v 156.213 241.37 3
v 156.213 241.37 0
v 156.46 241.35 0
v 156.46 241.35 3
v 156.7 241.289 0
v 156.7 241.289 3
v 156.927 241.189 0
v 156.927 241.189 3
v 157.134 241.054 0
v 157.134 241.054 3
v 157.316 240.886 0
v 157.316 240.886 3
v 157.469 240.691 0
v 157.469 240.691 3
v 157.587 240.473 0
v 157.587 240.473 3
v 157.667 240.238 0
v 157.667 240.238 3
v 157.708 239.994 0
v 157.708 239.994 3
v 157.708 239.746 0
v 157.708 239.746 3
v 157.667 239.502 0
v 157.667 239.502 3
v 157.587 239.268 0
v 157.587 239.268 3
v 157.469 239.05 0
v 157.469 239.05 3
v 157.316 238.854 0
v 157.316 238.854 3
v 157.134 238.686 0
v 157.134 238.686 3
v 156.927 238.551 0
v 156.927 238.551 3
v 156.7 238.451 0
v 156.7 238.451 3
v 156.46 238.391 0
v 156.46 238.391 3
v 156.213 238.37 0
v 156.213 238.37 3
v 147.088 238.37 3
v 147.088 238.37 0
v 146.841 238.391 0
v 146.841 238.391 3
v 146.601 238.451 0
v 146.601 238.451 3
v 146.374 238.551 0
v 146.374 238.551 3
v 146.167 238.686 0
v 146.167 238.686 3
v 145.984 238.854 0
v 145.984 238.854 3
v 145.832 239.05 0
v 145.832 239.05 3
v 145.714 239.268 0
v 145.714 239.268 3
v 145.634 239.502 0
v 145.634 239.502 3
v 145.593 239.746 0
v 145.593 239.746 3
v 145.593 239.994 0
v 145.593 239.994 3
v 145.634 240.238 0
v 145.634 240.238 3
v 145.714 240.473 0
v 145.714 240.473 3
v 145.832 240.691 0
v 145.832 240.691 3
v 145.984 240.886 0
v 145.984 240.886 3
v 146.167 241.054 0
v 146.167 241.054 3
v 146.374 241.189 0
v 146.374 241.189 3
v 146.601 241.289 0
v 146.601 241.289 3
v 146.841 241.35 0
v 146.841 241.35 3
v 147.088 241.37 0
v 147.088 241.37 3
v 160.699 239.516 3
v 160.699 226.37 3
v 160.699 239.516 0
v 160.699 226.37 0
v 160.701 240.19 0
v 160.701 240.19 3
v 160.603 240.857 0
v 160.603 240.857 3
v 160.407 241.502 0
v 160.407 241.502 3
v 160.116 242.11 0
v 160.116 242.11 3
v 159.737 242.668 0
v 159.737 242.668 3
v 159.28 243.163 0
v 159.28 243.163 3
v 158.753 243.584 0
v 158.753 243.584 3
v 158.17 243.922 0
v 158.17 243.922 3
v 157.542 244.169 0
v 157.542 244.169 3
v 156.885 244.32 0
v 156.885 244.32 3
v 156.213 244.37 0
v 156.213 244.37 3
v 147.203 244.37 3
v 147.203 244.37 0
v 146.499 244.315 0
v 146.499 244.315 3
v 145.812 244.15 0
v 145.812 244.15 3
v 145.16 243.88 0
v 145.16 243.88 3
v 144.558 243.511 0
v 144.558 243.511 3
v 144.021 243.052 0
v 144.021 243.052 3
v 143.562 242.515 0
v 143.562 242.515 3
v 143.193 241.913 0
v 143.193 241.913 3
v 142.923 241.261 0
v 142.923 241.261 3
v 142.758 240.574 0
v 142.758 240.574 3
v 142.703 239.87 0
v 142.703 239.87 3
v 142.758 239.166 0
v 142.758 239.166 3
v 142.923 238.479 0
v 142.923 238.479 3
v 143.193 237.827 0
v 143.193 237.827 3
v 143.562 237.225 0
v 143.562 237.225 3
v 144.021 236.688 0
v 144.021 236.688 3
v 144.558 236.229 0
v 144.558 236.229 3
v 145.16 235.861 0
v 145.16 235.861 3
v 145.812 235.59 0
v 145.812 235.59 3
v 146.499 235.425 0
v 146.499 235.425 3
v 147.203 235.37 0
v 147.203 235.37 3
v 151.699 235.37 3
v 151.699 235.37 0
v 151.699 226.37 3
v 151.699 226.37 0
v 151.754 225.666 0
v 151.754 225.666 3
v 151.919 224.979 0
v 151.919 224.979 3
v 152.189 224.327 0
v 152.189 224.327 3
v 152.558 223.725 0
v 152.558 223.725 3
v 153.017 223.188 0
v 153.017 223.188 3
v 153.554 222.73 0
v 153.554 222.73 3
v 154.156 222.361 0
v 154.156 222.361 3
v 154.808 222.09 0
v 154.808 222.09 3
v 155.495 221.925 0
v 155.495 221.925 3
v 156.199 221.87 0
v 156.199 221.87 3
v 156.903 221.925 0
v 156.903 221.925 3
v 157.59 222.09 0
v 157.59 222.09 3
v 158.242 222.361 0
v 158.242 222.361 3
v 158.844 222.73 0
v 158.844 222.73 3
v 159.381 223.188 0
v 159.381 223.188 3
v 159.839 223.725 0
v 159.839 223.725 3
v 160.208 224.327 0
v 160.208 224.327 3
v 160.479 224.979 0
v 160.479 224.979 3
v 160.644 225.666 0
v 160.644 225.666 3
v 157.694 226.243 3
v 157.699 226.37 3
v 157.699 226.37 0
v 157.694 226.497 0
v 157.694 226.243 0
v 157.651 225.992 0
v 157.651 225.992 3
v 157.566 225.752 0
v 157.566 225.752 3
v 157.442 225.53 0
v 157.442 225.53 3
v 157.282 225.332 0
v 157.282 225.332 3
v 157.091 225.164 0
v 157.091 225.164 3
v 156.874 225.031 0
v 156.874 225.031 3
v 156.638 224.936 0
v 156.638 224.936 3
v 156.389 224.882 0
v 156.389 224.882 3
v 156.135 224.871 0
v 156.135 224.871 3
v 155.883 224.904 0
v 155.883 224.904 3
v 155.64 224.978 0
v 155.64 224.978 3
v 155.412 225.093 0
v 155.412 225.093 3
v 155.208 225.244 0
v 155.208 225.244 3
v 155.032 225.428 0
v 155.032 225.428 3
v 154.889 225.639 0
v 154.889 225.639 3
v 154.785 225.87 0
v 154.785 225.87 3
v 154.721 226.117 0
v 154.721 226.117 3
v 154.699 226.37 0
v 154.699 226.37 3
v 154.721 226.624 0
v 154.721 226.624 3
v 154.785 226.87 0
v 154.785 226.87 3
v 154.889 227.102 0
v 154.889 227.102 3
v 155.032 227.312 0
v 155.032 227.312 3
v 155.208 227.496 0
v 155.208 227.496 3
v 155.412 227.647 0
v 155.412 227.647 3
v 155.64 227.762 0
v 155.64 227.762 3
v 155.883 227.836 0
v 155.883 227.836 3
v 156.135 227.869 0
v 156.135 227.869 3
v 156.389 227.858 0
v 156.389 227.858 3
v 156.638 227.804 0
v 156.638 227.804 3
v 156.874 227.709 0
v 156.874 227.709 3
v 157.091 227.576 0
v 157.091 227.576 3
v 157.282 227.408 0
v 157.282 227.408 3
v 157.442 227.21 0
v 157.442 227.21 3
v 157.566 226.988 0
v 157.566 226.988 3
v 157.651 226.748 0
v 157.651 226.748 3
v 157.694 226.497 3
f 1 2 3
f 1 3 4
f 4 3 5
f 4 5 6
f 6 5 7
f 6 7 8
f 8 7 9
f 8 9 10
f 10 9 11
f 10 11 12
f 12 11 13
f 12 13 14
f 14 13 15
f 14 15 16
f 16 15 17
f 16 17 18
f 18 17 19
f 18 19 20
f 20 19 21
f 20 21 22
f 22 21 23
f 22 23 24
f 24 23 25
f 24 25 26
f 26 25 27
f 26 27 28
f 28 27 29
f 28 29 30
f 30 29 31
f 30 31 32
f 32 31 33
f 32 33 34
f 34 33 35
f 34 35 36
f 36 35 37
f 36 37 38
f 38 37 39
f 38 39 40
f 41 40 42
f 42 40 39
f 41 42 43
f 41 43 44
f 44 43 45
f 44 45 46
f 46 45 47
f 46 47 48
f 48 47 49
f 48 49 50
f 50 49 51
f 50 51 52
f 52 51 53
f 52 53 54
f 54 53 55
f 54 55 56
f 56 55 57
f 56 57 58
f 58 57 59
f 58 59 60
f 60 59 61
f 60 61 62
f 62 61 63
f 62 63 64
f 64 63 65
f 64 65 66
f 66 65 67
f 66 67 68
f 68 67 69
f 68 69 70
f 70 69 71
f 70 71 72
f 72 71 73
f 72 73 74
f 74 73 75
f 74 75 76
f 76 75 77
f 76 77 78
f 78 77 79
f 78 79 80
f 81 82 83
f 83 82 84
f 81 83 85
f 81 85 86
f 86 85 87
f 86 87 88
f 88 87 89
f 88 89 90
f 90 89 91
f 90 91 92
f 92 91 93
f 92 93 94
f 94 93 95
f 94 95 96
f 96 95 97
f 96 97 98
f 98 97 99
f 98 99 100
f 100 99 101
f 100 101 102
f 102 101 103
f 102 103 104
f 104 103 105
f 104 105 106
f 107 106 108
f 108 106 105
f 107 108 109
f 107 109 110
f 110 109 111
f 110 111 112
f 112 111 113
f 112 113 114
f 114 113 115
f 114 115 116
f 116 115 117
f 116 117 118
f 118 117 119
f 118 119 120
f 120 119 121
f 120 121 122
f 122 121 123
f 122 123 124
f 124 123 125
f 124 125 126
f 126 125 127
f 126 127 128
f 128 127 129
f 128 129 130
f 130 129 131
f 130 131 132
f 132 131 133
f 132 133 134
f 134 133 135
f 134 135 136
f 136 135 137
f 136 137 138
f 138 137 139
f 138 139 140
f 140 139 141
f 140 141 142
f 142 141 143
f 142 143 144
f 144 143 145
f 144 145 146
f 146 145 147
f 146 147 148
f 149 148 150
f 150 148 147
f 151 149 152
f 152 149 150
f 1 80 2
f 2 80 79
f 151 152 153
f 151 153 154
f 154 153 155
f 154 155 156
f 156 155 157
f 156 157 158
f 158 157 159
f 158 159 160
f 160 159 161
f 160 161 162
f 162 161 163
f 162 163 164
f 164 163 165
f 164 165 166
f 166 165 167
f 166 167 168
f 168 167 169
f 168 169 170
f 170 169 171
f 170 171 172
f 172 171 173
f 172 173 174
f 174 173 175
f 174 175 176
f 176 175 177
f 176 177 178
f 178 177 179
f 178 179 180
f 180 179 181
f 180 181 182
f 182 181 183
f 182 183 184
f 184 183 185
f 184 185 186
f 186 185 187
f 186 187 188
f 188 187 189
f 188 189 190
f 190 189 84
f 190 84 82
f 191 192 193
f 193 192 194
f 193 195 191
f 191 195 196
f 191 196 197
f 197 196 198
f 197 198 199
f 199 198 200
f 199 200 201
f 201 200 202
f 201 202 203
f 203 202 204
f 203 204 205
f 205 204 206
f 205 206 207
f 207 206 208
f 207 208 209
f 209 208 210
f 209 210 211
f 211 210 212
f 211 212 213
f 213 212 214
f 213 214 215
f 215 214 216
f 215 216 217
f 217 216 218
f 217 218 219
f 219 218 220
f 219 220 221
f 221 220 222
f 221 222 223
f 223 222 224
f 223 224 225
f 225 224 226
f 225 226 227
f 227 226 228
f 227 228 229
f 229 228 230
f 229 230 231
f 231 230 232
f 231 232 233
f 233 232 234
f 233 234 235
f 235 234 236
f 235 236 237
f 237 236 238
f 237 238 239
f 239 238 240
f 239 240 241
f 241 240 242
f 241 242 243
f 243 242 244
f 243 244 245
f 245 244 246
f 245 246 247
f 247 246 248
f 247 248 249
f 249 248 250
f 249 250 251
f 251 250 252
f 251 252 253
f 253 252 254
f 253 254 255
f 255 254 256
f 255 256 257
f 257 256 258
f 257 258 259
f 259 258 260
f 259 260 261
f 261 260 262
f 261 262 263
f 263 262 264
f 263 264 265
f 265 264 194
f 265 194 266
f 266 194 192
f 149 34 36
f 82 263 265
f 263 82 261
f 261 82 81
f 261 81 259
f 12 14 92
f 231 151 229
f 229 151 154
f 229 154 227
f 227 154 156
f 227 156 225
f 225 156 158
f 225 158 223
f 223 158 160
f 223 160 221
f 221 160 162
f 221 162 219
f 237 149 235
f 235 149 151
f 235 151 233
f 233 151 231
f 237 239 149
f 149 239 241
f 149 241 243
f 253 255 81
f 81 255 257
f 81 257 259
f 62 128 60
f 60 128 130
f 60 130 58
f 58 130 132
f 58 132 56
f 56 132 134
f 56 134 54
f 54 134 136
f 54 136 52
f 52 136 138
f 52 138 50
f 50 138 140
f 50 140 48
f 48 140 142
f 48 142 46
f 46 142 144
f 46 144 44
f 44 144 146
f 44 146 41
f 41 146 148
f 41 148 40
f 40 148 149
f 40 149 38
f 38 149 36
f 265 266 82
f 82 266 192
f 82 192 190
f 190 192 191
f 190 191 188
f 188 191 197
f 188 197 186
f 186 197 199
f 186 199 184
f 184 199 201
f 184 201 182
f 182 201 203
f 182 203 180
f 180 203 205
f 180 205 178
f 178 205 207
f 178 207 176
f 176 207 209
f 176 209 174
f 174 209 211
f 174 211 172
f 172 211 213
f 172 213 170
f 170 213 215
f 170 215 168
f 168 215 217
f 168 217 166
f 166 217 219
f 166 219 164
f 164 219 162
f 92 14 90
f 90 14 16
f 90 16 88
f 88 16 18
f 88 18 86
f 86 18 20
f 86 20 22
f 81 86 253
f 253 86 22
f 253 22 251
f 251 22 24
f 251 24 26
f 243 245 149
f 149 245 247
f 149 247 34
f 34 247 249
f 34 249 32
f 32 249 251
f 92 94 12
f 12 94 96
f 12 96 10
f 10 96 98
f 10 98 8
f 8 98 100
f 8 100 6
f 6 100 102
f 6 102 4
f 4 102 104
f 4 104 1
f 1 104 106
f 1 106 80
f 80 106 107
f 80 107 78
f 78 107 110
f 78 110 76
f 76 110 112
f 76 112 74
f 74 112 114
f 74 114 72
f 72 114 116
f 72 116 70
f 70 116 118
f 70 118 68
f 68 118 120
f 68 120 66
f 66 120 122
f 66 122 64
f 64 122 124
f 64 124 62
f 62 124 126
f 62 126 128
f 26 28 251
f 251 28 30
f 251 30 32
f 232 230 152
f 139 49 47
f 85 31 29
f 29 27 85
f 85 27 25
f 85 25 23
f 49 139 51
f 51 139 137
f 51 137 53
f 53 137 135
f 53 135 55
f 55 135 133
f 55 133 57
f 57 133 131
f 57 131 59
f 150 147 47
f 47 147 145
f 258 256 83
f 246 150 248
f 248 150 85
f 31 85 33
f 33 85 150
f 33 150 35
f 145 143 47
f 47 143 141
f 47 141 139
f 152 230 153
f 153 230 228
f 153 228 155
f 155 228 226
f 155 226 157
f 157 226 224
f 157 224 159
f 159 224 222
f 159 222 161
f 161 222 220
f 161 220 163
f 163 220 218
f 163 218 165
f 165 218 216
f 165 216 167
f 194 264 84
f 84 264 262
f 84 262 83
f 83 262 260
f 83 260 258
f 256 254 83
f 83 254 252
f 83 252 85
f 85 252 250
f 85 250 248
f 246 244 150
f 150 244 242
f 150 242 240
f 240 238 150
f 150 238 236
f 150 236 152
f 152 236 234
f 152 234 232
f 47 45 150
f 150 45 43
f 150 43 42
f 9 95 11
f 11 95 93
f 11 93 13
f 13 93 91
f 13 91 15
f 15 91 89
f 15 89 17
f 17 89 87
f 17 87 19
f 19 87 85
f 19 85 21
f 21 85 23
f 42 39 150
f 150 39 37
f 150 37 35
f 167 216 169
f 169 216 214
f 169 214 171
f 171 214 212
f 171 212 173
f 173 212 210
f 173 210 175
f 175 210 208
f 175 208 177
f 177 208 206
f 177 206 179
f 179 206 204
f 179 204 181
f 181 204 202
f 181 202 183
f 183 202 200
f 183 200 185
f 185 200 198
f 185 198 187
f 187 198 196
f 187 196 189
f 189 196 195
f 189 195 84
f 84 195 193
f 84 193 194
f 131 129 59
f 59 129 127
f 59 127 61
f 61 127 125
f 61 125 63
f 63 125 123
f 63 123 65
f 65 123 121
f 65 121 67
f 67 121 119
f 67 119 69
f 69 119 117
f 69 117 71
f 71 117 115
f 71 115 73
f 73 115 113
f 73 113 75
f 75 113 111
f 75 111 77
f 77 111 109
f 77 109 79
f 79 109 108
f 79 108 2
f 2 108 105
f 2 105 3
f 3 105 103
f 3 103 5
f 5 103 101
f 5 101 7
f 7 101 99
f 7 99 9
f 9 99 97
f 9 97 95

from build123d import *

# Parameters (mm, degrees)
MODEL_R                 = 1.5
SALIENTE_EXTRUIR1_DEPTH = 3


with BuildPart() as part:
    # Model → Saliente-Extruir1 (new body)
    with BuildSketch(Plane.XY):
        with BuildLine():
            Line((160.698926217, 226.370073483), (160.698926217, 239.515886932))
            ThreePointArc((160.698926217, 239.515886932), (159.517719337, 242.924264089), (156.212886551, 244.370073483))
            Line((156.212886551, 244.370073483), (147.202886551, 244.370073483))
            ThreePointArc((147.202886551, 244.370073483), (142.702886551, 239.870073483), (147.202886551, 235.370073483))
            Line((147.202886551, 235.370073483), (151.698926217, 235.370073483))
            Line((151.698926217, 235.370073483), (151.698926217, 226.370073483))
            ThreePointArc((151.698926217, 226.370073483), (156.198926217, 221.870073483), (160.698926217, 226.370073483))
        make_face()
        with Locations((156.198926217, 226.370073483)):
            Circle(MODEL_R, mode=Mode.SUBTRACT)
        with BuildLine():
            ThreePointArc((147.087886551, 238.370073483), (145.587886551, 239.870073483), (147.087886551, 241.370073483))
            Line((147.087886551, 241.370073483), (156.212886551, 241.370073483))
            ThreePointArc((156.212886551, 241.370073483), (157.712886551, 239.870073483), (156.212886551, 238.370073483))
            Line((156.212886551, 238.370073483), (147.087886551, 238.370073483))
        make_face(mode=Mode.SUBTRACT)
    extrude(amount=SALIENTE_EXTRUIR1_DEPTH)


solid = part.part
